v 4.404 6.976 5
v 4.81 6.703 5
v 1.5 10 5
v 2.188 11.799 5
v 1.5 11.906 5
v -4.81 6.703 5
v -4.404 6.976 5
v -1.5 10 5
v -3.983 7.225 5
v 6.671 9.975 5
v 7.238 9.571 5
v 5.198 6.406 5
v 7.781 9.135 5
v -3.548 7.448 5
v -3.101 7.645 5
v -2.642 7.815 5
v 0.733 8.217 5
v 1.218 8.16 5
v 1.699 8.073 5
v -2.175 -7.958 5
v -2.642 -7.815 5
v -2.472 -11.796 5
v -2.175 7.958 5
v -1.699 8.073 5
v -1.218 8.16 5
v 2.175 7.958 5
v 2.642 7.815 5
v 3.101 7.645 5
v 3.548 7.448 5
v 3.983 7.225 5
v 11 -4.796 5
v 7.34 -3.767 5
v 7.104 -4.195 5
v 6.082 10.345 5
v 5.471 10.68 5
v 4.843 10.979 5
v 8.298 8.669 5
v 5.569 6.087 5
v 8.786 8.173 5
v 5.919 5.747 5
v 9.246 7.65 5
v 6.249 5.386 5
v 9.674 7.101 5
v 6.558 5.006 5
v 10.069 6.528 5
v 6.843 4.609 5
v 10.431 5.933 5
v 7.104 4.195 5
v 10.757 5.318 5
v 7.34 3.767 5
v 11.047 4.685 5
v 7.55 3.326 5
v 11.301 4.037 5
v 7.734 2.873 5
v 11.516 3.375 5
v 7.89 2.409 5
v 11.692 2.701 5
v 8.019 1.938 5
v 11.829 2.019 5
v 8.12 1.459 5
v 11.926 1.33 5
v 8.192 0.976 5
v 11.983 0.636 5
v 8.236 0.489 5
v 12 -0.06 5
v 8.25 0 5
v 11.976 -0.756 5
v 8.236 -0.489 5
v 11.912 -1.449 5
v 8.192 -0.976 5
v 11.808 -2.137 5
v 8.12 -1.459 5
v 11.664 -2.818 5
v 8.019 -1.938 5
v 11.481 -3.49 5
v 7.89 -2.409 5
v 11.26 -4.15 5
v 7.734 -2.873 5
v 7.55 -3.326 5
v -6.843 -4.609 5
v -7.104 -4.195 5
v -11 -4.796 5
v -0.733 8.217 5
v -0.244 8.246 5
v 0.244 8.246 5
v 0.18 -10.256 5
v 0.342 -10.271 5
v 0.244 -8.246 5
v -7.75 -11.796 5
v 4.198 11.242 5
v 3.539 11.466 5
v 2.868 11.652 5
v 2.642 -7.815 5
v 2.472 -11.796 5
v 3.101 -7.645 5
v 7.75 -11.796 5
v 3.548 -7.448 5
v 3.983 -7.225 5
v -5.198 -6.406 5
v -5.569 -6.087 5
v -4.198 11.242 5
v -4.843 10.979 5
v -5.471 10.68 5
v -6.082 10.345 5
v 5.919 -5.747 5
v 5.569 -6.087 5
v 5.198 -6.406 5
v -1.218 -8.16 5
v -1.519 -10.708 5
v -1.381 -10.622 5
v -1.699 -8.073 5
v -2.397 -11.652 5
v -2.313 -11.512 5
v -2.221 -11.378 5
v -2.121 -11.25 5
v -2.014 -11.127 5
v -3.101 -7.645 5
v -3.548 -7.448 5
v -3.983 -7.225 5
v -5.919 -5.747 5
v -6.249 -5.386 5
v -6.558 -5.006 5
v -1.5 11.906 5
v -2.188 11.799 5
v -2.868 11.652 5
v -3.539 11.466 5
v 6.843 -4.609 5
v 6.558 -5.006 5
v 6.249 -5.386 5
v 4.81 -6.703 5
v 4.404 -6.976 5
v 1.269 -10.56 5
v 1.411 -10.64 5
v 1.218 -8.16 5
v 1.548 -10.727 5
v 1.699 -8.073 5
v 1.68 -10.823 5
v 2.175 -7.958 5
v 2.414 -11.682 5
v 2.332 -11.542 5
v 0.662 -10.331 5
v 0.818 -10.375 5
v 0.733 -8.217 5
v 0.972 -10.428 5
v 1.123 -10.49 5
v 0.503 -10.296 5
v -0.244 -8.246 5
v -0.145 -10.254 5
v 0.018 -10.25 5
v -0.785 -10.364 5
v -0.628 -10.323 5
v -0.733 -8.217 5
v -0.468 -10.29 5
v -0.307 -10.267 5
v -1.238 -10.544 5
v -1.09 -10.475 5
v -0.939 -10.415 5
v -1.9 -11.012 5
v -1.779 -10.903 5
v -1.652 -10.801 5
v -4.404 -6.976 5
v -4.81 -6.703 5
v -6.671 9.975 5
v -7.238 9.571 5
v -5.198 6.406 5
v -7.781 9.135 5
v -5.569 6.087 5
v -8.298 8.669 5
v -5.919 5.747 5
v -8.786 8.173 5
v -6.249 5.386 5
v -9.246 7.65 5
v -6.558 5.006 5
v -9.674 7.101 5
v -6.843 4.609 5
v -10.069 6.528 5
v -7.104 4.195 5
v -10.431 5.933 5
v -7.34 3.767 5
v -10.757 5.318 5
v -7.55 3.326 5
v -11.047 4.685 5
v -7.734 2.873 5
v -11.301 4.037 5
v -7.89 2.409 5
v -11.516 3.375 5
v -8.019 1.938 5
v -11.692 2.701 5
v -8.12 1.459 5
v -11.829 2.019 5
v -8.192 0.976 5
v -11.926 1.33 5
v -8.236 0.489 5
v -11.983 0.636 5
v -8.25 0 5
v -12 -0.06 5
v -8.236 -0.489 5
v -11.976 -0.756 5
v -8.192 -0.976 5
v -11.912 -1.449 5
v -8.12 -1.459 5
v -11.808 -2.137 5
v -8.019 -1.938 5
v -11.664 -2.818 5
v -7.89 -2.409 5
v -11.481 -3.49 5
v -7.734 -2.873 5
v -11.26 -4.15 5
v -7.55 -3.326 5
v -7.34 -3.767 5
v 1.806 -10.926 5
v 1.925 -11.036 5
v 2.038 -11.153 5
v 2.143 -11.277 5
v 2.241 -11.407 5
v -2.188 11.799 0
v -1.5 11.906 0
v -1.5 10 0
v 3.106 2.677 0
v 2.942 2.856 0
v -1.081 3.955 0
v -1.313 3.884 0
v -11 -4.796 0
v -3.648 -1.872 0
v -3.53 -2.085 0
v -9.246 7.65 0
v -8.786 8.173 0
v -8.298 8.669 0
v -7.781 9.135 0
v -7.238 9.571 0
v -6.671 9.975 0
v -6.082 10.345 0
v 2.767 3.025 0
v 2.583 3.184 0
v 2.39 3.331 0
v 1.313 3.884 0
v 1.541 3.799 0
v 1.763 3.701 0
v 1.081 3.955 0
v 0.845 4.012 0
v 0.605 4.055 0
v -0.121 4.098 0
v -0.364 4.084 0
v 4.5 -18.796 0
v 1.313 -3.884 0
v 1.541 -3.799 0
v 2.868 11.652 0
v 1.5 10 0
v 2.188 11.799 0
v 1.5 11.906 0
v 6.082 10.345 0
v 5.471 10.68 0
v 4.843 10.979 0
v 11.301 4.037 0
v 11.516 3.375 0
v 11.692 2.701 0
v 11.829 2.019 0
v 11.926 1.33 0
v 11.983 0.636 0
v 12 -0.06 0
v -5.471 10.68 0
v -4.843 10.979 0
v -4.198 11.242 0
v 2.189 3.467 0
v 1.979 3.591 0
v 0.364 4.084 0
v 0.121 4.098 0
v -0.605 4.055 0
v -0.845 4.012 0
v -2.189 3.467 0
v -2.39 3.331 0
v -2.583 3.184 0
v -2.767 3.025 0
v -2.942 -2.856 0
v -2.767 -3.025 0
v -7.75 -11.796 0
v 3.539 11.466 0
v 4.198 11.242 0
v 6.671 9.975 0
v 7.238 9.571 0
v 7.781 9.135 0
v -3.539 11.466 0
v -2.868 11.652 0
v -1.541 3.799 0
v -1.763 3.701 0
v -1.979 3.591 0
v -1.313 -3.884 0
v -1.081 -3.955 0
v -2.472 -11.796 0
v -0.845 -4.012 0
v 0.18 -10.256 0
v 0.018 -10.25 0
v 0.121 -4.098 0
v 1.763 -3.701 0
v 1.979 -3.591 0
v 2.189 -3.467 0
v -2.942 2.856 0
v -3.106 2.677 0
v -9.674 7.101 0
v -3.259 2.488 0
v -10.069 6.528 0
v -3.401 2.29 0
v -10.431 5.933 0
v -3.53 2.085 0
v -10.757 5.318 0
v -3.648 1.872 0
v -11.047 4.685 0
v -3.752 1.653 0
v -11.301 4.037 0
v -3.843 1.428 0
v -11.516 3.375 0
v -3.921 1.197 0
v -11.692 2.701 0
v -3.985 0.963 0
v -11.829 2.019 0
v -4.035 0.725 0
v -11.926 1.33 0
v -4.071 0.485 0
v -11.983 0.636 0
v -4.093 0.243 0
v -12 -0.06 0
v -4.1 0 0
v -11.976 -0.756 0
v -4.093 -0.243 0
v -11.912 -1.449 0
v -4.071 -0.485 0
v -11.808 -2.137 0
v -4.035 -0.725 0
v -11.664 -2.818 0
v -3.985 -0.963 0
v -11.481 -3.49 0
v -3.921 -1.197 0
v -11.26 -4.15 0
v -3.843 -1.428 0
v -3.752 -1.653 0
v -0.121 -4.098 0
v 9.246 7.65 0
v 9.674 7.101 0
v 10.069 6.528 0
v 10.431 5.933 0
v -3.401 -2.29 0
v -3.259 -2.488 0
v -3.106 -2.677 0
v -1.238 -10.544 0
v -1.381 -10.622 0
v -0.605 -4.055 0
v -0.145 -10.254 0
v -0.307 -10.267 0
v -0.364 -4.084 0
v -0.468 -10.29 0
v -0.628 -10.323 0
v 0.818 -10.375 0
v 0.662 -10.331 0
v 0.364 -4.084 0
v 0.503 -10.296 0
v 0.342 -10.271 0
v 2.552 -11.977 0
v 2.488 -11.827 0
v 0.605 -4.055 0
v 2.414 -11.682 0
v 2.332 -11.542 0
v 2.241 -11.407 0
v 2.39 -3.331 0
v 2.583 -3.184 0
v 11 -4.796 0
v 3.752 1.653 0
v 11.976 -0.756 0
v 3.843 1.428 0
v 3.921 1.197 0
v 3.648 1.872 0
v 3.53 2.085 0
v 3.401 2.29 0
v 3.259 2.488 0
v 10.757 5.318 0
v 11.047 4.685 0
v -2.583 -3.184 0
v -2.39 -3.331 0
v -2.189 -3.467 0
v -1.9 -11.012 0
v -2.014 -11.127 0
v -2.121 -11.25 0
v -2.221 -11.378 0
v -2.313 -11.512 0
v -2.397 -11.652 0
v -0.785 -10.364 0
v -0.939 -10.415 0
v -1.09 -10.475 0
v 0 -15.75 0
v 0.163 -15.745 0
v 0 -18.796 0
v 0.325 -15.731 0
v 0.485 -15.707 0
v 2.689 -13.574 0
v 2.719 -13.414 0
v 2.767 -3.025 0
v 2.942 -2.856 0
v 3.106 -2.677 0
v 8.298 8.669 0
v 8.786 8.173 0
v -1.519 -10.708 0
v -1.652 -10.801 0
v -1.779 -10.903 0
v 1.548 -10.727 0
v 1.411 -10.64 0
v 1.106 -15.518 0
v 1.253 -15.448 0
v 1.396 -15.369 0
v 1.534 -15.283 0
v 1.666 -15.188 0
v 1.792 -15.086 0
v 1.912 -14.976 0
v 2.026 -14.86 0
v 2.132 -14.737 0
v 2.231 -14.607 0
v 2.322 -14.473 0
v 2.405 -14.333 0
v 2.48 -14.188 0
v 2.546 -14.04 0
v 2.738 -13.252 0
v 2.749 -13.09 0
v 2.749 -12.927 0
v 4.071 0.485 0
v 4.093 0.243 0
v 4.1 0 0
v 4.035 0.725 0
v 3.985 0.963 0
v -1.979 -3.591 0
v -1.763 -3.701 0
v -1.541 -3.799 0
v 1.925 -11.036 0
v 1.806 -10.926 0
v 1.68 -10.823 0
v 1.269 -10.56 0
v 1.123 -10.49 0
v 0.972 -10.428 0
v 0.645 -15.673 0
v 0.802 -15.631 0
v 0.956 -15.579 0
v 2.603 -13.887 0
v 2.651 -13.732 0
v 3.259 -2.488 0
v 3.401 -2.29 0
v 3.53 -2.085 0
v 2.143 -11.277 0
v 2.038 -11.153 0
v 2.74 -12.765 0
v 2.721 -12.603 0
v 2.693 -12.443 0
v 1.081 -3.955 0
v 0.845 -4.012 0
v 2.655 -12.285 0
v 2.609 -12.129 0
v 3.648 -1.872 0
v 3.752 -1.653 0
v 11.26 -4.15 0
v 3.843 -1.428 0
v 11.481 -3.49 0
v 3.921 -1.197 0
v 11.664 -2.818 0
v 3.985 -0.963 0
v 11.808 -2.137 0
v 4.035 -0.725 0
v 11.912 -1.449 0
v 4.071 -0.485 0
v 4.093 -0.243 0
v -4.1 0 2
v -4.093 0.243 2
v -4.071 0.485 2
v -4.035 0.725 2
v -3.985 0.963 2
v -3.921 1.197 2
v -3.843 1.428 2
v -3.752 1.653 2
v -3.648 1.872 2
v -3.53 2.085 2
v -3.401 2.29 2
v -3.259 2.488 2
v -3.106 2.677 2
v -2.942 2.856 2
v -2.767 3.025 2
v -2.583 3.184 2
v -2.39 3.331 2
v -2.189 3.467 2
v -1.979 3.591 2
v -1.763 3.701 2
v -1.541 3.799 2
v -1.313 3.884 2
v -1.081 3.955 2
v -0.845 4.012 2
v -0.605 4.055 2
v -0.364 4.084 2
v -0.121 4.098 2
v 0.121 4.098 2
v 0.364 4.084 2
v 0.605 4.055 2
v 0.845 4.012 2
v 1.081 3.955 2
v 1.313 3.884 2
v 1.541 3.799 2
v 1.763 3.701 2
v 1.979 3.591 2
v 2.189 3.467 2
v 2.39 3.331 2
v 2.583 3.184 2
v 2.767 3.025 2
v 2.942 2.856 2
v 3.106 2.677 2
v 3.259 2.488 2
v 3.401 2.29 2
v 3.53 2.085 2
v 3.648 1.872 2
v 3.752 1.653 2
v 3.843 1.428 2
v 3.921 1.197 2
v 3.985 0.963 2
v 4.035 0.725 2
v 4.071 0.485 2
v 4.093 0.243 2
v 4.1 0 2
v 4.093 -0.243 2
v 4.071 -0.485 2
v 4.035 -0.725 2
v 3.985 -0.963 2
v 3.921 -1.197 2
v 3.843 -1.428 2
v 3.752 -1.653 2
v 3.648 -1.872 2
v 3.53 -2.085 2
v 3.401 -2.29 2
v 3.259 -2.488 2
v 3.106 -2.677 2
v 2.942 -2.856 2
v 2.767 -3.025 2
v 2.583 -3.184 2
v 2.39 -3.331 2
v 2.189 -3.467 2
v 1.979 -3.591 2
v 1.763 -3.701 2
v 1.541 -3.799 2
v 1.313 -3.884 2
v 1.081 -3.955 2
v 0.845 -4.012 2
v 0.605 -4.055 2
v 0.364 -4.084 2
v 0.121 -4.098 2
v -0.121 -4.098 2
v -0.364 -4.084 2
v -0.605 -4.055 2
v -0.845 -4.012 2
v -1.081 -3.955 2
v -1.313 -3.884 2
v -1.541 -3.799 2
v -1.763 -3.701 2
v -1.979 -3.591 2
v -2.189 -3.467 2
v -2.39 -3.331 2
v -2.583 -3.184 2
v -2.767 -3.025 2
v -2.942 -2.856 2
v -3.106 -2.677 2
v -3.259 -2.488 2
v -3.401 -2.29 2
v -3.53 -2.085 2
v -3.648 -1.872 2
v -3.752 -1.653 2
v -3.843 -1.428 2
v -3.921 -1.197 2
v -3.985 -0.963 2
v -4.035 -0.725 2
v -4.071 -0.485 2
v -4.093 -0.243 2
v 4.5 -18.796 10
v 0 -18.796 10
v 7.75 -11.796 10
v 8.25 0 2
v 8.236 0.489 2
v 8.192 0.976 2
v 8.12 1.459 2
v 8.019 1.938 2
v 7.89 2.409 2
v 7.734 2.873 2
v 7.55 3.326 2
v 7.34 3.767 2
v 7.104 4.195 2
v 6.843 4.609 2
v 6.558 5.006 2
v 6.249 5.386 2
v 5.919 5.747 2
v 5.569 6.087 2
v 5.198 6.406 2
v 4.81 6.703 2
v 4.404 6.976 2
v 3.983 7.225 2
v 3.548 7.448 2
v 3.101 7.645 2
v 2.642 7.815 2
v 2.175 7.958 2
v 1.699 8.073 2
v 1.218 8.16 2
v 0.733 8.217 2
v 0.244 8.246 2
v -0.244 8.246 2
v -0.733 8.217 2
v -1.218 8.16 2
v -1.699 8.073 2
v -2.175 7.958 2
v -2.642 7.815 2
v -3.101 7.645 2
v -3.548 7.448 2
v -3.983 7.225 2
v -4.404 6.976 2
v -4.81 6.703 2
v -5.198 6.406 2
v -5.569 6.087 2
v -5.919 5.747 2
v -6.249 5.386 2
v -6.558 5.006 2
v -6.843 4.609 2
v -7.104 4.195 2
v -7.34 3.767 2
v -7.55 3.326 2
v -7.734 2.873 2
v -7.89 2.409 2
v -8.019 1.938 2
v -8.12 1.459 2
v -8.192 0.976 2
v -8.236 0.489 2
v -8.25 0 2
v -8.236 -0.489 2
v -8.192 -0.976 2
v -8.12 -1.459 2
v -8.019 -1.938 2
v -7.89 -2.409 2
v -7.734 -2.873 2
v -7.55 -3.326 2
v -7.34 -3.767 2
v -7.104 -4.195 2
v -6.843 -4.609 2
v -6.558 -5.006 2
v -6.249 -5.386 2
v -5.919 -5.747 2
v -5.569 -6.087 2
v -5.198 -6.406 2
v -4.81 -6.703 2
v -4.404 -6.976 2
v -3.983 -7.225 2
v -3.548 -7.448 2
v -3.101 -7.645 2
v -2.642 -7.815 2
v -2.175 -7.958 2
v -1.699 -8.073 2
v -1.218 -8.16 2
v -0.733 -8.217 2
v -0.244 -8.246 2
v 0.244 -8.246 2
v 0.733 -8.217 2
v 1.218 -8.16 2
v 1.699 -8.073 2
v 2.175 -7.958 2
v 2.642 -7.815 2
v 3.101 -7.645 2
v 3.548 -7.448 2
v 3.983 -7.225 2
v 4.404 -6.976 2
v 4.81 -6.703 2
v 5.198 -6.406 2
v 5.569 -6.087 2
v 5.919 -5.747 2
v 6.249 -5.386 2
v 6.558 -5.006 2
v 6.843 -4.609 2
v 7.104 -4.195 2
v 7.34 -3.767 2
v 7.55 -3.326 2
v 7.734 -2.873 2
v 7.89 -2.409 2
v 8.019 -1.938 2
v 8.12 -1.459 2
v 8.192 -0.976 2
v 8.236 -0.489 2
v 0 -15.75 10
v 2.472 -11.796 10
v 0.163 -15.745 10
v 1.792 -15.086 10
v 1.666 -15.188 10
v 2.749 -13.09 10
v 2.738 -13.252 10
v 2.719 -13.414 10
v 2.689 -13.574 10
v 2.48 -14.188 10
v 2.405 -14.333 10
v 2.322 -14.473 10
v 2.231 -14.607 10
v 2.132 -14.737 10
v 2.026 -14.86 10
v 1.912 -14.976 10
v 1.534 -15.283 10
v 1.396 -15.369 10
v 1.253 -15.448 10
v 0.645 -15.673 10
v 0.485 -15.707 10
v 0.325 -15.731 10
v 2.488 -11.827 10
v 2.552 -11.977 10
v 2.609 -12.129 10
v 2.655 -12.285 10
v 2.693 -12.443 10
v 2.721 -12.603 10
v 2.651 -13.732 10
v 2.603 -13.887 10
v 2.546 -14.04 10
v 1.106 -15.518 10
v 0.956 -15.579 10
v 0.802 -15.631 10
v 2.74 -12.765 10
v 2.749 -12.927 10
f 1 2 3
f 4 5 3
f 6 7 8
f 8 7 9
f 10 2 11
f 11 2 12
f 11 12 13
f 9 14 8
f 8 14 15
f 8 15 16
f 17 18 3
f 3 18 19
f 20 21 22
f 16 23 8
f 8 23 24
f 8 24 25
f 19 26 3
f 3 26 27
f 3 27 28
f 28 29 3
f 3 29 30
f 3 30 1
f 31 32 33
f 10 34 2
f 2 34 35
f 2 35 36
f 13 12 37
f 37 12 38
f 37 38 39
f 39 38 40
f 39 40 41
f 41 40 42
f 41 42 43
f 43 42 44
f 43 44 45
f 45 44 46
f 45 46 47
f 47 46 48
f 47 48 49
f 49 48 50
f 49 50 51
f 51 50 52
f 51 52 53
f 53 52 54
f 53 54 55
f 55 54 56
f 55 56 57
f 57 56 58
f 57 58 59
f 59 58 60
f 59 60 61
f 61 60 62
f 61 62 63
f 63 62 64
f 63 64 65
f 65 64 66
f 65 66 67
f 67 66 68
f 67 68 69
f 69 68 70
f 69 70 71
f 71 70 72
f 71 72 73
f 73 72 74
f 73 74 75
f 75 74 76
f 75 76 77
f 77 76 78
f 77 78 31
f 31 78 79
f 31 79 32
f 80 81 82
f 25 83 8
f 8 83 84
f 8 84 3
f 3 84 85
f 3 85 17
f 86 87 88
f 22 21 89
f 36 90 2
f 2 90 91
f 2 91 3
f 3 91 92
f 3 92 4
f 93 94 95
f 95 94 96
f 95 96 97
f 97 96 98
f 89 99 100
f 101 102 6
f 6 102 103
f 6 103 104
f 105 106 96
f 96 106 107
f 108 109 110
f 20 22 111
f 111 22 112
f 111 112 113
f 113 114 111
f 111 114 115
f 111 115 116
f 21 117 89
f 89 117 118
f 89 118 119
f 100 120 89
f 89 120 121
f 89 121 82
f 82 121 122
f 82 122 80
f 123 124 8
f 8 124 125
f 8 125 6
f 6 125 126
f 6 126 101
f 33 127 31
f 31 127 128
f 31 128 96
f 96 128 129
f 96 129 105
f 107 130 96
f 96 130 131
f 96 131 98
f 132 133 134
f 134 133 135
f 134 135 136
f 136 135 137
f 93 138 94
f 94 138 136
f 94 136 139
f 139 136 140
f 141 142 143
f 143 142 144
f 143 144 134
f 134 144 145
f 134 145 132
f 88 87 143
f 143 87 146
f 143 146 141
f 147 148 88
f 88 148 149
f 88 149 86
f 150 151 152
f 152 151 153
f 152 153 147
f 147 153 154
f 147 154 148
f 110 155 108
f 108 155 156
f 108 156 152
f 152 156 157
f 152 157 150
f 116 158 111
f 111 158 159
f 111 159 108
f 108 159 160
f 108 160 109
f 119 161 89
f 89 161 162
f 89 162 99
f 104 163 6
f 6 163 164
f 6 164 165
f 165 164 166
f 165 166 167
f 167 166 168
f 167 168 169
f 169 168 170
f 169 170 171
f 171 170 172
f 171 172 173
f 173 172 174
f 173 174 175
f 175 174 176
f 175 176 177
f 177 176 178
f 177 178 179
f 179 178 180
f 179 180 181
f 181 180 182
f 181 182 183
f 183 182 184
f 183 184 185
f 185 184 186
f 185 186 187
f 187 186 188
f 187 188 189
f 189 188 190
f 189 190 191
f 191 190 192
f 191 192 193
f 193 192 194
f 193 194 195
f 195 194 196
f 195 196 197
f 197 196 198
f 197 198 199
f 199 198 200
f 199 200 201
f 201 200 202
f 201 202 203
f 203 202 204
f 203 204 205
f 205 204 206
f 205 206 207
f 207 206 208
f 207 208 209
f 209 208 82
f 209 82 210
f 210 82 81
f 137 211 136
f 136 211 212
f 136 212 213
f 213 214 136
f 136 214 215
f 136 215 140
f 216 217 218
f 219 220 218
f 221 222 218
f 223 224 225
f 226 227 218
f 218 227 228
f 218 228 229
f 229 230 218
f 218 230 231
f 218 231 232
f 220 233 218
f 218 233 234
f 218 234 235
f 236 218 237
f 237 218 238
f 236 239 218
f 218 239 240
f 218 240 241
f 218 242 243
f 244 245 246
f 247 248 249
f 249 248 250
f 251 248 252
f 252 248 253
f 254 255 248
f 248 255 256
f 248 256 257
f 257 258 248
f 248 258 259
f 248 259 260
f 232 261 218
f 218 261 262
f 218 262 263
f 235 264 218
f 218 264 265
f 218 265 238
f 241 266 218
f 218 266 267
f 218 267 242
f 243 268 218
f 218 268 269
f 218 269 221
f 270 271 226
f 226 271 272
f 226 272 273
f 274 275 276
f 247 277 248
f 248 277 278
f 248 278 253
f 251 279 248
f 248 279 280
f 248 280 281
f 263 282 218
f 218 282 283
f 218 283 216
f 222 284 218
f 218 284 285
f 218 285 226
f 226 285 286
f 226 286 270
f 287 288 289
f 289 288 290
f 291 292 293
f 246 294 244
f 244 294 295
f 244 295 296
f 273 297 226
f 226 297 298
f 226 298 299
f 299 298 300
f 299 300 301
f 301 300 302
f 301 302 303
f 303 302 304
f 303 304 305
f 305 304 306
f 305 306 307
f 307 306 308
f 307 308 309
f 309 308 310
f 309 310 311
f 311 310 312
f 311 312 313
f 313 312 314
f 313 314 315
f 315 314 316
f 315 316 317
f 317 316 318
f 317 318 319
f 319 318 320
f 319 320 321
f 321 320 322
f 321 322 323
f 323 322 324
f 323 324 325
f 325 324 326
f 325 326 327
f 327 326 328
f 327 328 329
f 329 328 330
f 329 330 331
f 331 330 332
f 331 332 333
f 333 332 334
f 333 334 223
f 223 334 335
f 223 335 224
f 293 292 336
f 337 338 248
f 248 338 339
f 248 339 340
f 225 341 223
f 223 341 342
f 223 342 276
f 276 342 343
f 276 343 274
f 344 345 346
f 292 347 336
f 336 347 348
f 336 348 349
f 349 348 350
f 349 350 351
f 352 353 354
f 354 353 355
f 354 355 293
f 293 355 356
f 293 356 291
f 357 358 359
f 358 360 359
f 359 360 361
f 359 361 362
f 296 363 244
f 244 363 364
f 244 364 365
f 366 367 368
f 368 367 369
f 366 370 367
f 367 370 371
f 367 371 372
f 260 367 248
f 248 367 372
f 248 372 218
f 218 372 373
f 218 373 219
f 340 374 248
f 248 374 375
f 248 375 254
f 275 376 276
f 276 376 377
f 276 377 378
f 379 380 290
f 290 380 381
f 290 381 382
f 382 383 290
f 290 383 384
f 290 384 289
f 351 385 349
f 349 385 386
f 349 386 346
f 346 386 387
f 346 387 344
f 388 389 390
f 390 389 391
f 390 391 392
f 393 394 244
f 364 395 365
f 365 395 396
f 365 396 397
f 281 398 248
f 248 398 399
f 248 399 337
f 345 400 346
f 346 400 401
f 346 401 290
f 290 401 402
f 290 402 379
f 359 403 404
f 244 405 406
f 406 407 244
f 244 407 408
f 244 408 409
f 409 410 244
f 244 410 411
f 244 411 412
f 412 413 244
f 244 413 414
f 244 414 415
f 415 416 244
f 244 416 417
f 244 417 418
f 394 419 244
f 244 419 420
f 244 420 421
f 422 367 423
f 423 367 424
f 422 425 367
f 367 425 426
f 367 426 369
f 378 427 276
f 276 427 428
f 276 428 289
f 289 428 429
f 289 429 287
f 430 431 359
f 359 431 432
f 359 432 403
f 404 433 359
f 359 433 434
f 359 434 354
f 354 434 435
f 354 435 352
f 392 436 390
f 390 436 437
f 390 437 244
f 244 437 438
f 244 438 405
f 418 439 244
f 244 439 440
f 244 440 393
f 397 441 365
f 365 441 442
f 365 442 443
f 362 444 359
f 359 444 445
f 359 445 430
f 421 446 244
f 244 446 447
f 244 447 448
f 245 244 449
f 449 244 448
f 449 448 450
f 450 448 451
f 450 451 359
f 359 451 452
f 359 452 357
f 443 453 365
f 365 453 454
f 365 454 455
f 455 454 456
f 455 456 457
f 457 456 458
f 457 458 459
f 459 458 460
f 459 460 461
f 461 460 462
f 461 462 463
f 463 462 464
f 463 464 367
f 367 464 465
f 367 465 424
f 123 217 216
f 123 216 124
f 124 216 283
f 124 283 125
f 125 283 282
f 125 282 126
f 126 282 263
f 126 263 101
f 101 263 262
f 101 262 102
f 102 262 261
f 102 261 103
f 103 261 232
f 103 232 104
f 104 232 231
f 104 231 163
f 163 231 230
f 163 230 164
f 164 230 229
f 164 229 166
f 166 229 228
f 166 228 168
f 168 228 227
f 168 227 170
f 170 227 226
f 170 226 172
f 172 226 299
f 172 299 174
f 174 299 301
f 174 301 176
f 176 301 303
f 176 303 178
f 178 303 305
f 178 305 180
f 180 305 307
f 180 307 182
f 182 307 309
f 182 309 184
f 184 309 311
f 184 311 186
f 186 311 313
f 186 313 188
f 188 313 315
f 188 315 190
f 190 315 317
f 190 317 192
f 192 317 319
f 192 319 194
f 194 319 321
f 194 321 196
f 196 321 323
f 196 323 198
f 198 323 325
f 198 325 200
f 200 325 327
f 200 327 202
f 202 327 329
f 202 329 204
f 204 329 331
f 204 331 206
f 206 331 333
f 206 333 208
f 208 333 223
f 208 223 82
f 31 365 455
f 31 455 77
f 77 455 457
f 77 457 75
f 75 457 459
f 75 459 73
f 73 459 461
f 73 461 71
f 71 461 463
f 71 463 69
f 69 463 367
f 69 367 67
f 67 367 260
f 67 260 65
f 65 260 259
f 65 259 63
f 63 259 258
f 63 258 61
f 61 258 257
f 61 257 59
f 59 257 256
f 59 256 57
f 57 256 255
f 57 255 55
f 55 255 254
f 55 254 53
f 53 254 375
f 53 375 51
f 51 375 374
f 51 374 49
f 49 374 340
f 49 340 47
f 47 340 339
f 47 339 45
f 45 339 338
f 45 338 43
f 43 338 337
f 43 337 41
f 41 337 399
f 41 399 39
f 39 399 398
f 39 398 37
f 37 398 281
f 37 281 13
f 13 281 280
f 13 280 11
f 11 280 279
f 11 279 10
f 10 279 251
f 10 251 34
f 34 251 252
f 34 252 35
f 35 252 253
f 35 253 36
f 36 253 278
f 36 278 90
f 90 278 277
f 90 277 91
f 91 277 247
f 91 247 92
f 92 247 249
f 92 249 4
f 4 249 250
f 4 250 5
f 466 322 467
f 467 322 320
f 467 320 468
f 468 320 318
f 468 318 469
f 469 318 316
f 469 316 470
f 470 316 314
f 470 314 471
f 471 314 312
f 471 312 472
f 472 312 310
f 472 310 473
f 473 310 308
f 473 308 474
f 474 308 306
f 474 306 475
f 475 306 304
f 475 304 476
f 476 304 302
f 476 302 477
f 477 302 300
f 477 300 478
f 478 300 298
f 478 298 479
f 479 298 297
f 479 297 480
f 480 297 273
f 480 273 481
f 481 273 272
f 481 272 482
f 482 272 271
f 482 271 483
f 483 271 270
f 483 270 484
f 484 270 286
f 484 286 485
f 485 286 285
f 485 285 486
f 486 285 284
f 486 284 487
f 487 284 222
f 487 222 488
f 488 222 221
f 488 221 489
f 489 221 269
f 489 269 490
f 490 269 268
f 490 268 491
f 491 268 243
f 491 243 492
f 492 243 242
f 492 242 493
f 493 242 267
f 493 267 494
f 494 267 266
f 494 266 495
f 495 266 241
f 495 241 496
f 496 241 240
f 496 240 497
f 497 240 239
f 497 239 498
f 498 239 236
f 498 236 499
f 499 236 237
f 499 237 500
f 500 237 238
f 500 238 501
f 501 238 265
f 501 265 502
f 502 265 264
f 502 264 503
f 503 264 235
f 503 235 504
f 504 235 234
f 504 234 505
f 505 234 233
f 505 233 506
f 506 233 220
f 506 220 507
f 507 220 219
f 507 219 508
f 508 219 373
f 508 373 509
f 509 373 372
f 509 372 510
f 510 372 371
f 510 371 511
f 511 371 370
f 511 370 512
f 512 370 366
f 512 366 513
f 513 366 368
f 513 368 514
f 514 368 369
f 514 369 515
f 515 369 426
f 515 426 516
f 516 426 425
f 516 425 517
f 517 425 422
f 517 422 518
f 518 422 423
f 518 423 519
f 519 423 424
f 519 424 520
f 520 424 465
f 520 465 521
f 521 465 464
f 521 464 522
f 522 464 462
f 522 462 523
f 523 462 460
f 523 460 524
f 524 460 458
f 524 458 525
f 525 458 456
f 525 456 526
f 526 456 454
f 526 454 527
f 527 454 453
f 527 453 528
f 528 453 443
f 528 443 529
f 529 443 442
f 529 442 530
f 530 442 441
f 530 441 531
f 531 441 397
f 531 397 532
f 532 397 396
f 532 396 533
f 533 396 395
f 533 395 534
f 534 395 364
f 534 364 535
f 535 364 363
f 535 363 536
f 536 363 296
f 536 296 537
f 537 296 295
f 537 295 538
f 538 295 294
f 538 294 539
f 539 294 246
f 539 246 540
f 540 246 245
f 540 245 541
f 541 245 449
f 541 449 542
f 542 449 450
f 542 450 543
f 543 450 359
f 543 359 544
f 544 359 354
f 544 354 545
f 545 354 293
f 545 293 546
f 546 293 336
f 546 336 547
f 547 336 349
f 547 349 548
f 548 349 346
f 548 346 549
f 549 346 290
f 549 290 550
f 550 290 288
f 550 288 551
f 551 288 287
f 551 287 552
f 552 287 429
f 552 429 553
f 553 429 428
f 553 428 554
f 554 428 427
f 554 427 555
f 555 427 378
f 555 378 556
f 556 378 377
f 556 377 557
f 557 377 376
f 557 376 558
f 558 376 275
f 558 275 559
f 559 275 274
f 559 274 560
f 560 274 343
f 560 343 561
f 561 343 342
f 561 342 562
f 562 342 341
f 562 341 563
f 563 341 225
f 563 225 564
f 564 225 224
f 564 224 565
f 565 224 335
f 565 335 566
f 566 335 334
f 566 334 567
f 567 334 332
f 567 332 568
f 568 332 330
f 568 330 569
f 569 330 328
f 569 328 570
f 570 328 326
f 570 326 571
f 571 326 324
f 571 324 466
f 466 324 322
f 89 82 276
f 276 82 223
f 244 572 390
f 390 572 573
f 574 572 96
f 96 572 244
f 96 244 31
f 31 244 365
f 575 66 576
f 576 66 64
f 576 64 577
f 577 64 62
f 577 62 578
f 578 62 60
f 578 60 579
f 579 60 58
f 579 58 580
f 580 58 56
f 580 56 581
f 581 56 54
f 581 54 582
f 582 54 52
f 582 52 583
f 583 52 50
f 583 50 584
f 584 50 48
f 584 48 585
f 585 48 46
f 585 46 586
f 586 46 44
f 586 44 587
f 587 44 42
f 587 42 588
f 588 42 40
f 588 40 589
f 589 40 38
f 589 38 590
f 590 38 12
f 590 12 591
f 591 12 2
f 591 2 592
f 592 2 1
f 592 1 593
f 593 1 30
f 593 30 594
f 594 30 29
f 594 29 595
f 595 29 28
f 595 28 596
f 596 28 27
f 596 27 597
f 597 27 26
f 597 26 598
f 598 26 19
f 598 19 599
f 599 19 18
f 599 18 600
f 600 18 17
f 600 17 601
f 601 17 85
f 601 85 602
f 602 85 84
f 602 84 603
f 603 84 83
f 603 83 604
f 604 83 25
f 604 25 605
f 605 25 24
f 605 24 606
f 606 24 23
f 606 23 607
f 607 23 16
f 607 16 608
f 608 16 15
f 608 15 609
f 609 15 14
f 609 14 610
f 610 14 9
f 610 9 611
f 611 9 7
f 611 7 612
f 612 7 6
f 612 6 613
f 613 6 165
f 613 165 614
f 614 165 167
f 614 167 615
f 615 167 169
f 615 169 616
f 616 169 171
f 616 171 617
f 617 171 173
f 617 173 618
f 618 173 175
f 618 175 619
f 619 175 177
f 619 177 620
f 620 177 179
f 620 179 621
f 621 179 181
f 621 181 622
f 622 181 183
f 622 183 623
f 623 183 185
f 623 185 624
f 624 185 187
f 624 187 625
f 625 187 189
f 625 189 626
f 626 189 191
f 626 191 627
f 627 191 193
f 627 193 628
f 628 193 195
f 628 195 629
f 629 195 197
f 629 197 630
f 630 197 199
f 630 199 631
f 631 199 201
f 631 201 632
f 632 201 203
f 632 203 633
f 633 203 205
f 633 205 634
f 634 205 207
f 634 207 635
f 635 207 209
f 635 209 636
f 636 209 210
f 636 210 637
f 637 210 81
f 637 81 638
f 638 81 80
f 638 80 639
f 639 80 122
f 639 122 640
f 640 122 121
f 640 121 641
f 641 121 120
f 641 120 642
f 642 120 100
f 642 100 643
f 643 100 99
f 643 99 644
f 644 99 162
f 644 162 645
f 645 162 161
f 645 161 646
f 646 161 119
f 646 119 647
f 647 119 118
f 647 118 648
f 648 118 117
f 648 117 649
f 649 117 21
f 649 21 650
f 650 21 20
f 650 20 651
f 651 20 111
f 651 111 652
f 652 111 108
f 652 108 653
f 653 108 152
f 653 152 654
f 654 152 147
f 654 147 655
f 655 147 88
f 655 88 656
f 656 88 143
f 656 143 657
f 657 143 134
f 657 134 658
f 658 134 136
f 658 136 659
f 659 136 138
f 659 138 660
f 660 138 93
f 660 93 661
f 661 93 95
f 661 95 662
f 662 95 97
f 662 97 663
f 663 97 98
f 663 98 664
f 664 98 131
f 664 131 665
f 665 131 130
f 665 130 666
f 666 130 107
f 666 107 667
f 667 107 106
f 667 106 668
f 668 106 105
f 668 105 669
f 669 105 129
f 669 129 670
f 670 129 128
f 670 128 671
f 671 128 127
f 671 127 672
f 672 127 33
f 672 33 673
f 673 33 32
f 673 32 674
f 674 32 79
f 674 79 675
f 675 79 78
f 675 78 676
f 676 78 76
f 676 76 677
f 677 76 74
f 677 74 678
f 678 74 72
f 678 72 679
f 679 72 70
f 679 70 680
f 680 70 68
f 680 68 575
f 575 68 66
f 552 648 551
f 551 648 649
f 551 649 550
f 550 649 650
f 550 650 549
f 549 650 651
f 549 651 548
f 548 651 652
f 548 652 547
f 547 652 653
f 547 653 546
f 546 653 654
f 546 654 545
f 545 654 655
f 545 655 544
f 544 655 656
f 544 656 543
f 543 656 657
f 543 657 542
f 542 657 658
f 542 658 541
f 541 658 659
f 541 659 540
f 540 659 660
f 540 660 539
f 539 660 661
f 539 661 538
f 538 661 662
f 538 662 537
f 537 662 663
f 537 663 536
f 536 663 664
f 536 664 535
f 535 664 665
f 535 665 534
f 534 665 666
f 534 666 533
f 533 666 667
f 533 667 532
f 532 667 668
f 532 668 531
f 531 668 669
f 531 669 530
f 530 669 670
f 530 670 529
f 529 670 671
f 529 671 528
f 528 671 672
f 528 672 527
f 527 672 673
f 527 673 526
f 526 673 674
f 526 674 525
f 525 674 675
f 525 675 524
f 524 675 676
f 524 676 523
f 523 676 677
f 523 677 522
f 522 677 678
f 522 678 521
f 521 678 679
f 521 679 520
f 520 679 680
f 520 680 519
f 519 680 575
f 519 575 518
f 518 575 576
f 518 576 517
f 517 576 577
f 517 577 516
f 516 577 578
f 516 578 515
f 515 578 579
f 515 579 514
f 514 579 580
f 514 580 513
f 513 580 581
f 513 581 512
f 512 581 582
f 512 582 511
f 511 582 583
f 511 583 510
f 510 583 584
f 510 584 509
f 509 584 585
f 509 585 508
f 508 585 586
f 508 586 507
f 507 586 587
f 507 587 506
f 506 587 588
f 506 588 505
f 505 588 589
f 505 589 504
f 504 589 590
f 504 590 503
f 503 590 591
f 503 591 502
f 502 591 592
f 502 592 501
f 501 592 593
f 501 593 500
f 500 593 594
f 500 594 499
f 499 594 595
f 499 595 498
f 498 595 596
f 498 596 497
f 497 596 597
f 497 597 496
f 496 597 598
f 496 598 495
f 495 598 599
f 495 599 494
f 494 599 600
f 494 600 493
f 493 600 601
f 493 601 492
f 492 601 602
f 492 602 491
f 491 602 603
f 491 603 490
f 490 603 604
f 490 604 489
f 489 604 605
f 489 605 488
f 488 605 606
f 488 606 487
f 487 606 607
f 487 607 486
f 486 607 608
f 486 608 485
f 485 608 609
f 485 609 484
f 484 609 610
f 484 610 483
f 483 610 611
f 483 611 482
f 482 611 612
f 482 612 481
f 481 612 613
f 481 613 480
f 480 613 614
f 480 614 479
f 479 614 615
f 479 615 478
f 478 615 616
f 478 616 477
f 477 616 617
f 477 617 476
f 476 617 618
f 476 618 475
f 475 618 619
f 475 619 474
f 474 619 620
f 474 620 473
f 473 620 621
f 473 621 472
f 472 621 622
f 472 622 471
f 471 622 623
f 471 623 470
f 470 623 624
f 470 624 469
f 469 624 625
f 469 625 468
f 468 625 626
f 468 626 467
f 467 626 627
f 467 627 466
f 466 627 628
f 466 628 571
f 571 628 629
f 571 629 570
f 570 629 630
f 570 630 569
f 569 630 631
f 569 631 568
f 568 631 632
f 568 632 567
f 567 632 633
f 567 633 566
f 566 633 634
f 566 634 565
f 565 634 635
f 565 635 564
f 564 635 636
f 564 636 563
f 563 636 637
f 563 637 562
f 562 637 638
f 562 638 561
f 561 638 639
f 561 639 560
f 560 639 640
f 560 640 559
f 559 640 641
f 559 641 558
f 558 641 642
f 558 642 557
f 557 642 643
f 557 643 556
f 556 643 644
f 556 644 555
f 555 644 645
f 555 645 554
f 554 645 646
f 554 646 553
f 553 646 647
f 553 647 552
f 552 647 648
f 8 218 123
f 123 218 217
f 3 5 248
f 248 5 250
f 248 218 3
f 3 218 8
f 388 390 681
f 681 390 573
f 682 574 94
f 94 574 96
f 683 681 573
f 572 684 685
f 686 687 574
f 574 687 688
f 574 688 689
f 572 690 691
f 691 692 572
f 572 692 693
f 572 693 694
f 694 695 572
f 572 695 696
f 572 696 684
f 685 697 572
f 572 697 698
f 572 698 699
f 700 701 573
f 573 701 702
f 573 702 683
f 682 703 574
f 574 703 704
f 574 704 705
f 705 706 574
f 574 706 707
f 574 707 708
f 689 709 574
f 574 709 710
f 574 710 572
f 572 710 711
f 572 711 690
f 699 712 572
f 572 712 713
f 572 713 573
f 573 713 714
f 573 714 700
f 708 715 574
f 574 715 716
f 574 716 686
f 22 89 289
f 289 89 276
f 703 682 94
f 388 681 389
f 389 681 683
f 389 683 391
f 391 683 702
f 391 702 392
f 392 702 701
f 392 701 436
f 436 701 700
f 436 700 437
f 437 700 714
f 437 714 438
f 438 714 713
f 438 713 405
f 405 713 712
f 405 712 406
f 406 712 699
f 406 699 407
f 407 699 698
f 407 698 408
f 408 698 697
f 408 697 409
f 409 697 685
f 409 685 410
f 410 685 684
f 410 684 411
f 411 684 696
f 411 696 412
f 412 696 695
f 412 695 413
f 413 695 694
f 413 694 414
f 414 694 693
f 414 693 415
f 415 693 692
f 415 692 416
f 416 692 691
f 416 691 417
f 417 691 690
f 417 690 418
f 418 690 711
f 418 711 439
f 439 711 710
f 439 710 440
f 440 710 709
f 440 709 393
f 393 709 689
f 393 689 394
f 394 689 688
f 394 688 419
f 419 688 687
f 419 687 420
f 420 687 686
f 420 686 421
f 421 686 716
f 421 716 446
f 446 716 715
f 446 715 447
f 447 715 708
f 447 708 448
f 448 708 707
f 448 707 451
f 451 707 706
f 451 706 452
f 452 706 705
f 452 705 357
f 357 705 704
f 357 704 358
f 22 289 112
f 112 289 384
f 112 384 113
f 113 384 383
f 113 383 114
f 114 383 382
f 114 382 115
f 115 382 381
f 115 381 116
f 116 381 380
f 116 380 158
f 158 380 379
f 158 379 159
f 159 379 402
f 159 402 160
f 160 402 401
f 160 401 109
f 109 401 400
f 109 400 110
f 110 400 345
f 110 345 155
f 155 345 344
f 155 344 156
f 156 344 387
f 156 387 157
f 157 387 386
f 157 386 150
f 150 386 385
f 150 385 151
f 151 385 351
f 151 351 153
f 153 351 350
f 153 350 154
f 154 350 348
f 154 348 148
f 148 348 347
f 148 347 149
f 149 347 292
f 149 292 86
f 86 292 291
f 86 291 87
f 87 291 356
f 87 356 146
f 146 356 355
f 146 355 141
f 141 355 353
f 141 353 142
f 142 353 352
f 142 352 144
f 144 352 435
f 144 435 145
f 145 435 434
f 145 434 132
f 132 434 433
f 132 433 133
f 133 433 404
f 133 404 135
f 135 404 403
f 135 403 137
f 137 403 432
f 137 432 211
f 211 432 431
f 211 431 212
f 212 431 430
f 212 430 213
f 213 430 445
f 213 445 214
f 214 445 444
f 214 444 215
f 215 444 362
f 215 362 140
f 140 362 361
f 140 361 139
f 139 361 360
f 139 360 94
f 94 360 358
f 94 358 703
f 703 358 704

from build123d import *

# Parameters (mm, degrees)
ESQUISSE1_R                  = 4.1
BOSS_EXTRU_1_DEPTH           = 5
ESQUISSE2_R                  = 8.25
ENL_V_MAT_EXTRU_1_DEPTH      = 3
ESQUISSE4_W                  = 3
ESQUISSE4_H                  = 5
ENL_V_MAT_EXTRU_2_DEPTH      = 2
BOSS_EXTRU_2_DEPTH           = 5
ENL_V_MAT_EXTRU_4_DEPTH      = 5
ESQUISSE8_R                  = 2.75
ENL_V_MAT_EXTRU_5_DEPTH      = 6
ENL_V_MAT_EXTRU_5_DEPTH_BACK = 6


with BuildPart() as part:
    # Esquisse1 → Boss.-Extru.1 (new body)
    with BuildSketch(Plane.XY):
        with BuildLine():
            Line((-11, -4.795831523), (-4.5, -18.795831523))
            Line((-4.5, -18.795831523), (4.5, -18.795831523))
            Line((4.5, -18.795831523), (11, -4.795831523))
            ThreePointArc((11, -4.795831523), (0, 12), (-11, -4.795831523))
        make_face()
        Circle(ESQUISSE1_R, mode=Mode.SUBTRACT)
    extrude(amount=BOSS_EXTRU_1_DEPTH)

    # Esquisse2 → Enlèv. mat.-Extru.1 (cut)
    with BuildSketch(Plane.XY.offset(5)):
        Circle(ESQUISSE2_R)
    extrude(amount=-ENL_V_MAT_EXTRU_1_DEPTH, mode=Mode.SUBTRACT)

    # Esquisse4 → Enlèv. mat.-Extru.2 (cut)
    with BuildSketch(Plane(origin=(0, 12, 0), x_dir=(1, 0, 0), z_dir=(0, 1, 0))):
        with Locations((0, -2.5)):
            Rectangle(ESQUISSE4_W, ESQUISSE4_H)
    extrude(amount=-ENL_V_MAT_EXTRU_2_DEPTH, mode=Mode.SUBTRACT)

    # Esquisse6 → Boss.-Extru.2 (add)
    with BuildSketch(Plane.XY.offset(5)):
        Polygon((0, -18.795831523), (4.5, -18.795831523), (7.75, -11.795831523), (0, -11.795831523), align=None)
    extrude(amount=BOSS_EXTRU_2_DEPTH)

    # Esquisse7 → Enlèv. mat.-Extru.4 (cut)
    with BuildSketch(Plane.XY.offset(5)):
        Polygon((0, -18.795831523), (0, -11.795831523), (-7.75, -11.795831523), (-4.5, -18.795831523), align=None)
    extrude(amount=-ENL_V_MAT_EXTRU_4_DEPTH, mode=Mode.SUBTRACT)

    # Esquisse8 → Enlèv. mat.-Extru.5 (cut, two sides)
    with BuildSketch(Plane.XY.offset(5)) as enl_v_mat_extru_5_sk:
        with Locations((0, -13)):
            Circle(ESQUISSE8_R)
    extrude(amount=ENL_V_MAT_EXTRU_5_DEPTH, mode=Mode.SUBTRACT)
    extrude(enl_v_mat_extru_5_sk.sketch, amount=-ENL_V_MAT_EXTRU_5_DEPTH_BACK, mode=Mode.SUBTRACT)


solid = part.part
